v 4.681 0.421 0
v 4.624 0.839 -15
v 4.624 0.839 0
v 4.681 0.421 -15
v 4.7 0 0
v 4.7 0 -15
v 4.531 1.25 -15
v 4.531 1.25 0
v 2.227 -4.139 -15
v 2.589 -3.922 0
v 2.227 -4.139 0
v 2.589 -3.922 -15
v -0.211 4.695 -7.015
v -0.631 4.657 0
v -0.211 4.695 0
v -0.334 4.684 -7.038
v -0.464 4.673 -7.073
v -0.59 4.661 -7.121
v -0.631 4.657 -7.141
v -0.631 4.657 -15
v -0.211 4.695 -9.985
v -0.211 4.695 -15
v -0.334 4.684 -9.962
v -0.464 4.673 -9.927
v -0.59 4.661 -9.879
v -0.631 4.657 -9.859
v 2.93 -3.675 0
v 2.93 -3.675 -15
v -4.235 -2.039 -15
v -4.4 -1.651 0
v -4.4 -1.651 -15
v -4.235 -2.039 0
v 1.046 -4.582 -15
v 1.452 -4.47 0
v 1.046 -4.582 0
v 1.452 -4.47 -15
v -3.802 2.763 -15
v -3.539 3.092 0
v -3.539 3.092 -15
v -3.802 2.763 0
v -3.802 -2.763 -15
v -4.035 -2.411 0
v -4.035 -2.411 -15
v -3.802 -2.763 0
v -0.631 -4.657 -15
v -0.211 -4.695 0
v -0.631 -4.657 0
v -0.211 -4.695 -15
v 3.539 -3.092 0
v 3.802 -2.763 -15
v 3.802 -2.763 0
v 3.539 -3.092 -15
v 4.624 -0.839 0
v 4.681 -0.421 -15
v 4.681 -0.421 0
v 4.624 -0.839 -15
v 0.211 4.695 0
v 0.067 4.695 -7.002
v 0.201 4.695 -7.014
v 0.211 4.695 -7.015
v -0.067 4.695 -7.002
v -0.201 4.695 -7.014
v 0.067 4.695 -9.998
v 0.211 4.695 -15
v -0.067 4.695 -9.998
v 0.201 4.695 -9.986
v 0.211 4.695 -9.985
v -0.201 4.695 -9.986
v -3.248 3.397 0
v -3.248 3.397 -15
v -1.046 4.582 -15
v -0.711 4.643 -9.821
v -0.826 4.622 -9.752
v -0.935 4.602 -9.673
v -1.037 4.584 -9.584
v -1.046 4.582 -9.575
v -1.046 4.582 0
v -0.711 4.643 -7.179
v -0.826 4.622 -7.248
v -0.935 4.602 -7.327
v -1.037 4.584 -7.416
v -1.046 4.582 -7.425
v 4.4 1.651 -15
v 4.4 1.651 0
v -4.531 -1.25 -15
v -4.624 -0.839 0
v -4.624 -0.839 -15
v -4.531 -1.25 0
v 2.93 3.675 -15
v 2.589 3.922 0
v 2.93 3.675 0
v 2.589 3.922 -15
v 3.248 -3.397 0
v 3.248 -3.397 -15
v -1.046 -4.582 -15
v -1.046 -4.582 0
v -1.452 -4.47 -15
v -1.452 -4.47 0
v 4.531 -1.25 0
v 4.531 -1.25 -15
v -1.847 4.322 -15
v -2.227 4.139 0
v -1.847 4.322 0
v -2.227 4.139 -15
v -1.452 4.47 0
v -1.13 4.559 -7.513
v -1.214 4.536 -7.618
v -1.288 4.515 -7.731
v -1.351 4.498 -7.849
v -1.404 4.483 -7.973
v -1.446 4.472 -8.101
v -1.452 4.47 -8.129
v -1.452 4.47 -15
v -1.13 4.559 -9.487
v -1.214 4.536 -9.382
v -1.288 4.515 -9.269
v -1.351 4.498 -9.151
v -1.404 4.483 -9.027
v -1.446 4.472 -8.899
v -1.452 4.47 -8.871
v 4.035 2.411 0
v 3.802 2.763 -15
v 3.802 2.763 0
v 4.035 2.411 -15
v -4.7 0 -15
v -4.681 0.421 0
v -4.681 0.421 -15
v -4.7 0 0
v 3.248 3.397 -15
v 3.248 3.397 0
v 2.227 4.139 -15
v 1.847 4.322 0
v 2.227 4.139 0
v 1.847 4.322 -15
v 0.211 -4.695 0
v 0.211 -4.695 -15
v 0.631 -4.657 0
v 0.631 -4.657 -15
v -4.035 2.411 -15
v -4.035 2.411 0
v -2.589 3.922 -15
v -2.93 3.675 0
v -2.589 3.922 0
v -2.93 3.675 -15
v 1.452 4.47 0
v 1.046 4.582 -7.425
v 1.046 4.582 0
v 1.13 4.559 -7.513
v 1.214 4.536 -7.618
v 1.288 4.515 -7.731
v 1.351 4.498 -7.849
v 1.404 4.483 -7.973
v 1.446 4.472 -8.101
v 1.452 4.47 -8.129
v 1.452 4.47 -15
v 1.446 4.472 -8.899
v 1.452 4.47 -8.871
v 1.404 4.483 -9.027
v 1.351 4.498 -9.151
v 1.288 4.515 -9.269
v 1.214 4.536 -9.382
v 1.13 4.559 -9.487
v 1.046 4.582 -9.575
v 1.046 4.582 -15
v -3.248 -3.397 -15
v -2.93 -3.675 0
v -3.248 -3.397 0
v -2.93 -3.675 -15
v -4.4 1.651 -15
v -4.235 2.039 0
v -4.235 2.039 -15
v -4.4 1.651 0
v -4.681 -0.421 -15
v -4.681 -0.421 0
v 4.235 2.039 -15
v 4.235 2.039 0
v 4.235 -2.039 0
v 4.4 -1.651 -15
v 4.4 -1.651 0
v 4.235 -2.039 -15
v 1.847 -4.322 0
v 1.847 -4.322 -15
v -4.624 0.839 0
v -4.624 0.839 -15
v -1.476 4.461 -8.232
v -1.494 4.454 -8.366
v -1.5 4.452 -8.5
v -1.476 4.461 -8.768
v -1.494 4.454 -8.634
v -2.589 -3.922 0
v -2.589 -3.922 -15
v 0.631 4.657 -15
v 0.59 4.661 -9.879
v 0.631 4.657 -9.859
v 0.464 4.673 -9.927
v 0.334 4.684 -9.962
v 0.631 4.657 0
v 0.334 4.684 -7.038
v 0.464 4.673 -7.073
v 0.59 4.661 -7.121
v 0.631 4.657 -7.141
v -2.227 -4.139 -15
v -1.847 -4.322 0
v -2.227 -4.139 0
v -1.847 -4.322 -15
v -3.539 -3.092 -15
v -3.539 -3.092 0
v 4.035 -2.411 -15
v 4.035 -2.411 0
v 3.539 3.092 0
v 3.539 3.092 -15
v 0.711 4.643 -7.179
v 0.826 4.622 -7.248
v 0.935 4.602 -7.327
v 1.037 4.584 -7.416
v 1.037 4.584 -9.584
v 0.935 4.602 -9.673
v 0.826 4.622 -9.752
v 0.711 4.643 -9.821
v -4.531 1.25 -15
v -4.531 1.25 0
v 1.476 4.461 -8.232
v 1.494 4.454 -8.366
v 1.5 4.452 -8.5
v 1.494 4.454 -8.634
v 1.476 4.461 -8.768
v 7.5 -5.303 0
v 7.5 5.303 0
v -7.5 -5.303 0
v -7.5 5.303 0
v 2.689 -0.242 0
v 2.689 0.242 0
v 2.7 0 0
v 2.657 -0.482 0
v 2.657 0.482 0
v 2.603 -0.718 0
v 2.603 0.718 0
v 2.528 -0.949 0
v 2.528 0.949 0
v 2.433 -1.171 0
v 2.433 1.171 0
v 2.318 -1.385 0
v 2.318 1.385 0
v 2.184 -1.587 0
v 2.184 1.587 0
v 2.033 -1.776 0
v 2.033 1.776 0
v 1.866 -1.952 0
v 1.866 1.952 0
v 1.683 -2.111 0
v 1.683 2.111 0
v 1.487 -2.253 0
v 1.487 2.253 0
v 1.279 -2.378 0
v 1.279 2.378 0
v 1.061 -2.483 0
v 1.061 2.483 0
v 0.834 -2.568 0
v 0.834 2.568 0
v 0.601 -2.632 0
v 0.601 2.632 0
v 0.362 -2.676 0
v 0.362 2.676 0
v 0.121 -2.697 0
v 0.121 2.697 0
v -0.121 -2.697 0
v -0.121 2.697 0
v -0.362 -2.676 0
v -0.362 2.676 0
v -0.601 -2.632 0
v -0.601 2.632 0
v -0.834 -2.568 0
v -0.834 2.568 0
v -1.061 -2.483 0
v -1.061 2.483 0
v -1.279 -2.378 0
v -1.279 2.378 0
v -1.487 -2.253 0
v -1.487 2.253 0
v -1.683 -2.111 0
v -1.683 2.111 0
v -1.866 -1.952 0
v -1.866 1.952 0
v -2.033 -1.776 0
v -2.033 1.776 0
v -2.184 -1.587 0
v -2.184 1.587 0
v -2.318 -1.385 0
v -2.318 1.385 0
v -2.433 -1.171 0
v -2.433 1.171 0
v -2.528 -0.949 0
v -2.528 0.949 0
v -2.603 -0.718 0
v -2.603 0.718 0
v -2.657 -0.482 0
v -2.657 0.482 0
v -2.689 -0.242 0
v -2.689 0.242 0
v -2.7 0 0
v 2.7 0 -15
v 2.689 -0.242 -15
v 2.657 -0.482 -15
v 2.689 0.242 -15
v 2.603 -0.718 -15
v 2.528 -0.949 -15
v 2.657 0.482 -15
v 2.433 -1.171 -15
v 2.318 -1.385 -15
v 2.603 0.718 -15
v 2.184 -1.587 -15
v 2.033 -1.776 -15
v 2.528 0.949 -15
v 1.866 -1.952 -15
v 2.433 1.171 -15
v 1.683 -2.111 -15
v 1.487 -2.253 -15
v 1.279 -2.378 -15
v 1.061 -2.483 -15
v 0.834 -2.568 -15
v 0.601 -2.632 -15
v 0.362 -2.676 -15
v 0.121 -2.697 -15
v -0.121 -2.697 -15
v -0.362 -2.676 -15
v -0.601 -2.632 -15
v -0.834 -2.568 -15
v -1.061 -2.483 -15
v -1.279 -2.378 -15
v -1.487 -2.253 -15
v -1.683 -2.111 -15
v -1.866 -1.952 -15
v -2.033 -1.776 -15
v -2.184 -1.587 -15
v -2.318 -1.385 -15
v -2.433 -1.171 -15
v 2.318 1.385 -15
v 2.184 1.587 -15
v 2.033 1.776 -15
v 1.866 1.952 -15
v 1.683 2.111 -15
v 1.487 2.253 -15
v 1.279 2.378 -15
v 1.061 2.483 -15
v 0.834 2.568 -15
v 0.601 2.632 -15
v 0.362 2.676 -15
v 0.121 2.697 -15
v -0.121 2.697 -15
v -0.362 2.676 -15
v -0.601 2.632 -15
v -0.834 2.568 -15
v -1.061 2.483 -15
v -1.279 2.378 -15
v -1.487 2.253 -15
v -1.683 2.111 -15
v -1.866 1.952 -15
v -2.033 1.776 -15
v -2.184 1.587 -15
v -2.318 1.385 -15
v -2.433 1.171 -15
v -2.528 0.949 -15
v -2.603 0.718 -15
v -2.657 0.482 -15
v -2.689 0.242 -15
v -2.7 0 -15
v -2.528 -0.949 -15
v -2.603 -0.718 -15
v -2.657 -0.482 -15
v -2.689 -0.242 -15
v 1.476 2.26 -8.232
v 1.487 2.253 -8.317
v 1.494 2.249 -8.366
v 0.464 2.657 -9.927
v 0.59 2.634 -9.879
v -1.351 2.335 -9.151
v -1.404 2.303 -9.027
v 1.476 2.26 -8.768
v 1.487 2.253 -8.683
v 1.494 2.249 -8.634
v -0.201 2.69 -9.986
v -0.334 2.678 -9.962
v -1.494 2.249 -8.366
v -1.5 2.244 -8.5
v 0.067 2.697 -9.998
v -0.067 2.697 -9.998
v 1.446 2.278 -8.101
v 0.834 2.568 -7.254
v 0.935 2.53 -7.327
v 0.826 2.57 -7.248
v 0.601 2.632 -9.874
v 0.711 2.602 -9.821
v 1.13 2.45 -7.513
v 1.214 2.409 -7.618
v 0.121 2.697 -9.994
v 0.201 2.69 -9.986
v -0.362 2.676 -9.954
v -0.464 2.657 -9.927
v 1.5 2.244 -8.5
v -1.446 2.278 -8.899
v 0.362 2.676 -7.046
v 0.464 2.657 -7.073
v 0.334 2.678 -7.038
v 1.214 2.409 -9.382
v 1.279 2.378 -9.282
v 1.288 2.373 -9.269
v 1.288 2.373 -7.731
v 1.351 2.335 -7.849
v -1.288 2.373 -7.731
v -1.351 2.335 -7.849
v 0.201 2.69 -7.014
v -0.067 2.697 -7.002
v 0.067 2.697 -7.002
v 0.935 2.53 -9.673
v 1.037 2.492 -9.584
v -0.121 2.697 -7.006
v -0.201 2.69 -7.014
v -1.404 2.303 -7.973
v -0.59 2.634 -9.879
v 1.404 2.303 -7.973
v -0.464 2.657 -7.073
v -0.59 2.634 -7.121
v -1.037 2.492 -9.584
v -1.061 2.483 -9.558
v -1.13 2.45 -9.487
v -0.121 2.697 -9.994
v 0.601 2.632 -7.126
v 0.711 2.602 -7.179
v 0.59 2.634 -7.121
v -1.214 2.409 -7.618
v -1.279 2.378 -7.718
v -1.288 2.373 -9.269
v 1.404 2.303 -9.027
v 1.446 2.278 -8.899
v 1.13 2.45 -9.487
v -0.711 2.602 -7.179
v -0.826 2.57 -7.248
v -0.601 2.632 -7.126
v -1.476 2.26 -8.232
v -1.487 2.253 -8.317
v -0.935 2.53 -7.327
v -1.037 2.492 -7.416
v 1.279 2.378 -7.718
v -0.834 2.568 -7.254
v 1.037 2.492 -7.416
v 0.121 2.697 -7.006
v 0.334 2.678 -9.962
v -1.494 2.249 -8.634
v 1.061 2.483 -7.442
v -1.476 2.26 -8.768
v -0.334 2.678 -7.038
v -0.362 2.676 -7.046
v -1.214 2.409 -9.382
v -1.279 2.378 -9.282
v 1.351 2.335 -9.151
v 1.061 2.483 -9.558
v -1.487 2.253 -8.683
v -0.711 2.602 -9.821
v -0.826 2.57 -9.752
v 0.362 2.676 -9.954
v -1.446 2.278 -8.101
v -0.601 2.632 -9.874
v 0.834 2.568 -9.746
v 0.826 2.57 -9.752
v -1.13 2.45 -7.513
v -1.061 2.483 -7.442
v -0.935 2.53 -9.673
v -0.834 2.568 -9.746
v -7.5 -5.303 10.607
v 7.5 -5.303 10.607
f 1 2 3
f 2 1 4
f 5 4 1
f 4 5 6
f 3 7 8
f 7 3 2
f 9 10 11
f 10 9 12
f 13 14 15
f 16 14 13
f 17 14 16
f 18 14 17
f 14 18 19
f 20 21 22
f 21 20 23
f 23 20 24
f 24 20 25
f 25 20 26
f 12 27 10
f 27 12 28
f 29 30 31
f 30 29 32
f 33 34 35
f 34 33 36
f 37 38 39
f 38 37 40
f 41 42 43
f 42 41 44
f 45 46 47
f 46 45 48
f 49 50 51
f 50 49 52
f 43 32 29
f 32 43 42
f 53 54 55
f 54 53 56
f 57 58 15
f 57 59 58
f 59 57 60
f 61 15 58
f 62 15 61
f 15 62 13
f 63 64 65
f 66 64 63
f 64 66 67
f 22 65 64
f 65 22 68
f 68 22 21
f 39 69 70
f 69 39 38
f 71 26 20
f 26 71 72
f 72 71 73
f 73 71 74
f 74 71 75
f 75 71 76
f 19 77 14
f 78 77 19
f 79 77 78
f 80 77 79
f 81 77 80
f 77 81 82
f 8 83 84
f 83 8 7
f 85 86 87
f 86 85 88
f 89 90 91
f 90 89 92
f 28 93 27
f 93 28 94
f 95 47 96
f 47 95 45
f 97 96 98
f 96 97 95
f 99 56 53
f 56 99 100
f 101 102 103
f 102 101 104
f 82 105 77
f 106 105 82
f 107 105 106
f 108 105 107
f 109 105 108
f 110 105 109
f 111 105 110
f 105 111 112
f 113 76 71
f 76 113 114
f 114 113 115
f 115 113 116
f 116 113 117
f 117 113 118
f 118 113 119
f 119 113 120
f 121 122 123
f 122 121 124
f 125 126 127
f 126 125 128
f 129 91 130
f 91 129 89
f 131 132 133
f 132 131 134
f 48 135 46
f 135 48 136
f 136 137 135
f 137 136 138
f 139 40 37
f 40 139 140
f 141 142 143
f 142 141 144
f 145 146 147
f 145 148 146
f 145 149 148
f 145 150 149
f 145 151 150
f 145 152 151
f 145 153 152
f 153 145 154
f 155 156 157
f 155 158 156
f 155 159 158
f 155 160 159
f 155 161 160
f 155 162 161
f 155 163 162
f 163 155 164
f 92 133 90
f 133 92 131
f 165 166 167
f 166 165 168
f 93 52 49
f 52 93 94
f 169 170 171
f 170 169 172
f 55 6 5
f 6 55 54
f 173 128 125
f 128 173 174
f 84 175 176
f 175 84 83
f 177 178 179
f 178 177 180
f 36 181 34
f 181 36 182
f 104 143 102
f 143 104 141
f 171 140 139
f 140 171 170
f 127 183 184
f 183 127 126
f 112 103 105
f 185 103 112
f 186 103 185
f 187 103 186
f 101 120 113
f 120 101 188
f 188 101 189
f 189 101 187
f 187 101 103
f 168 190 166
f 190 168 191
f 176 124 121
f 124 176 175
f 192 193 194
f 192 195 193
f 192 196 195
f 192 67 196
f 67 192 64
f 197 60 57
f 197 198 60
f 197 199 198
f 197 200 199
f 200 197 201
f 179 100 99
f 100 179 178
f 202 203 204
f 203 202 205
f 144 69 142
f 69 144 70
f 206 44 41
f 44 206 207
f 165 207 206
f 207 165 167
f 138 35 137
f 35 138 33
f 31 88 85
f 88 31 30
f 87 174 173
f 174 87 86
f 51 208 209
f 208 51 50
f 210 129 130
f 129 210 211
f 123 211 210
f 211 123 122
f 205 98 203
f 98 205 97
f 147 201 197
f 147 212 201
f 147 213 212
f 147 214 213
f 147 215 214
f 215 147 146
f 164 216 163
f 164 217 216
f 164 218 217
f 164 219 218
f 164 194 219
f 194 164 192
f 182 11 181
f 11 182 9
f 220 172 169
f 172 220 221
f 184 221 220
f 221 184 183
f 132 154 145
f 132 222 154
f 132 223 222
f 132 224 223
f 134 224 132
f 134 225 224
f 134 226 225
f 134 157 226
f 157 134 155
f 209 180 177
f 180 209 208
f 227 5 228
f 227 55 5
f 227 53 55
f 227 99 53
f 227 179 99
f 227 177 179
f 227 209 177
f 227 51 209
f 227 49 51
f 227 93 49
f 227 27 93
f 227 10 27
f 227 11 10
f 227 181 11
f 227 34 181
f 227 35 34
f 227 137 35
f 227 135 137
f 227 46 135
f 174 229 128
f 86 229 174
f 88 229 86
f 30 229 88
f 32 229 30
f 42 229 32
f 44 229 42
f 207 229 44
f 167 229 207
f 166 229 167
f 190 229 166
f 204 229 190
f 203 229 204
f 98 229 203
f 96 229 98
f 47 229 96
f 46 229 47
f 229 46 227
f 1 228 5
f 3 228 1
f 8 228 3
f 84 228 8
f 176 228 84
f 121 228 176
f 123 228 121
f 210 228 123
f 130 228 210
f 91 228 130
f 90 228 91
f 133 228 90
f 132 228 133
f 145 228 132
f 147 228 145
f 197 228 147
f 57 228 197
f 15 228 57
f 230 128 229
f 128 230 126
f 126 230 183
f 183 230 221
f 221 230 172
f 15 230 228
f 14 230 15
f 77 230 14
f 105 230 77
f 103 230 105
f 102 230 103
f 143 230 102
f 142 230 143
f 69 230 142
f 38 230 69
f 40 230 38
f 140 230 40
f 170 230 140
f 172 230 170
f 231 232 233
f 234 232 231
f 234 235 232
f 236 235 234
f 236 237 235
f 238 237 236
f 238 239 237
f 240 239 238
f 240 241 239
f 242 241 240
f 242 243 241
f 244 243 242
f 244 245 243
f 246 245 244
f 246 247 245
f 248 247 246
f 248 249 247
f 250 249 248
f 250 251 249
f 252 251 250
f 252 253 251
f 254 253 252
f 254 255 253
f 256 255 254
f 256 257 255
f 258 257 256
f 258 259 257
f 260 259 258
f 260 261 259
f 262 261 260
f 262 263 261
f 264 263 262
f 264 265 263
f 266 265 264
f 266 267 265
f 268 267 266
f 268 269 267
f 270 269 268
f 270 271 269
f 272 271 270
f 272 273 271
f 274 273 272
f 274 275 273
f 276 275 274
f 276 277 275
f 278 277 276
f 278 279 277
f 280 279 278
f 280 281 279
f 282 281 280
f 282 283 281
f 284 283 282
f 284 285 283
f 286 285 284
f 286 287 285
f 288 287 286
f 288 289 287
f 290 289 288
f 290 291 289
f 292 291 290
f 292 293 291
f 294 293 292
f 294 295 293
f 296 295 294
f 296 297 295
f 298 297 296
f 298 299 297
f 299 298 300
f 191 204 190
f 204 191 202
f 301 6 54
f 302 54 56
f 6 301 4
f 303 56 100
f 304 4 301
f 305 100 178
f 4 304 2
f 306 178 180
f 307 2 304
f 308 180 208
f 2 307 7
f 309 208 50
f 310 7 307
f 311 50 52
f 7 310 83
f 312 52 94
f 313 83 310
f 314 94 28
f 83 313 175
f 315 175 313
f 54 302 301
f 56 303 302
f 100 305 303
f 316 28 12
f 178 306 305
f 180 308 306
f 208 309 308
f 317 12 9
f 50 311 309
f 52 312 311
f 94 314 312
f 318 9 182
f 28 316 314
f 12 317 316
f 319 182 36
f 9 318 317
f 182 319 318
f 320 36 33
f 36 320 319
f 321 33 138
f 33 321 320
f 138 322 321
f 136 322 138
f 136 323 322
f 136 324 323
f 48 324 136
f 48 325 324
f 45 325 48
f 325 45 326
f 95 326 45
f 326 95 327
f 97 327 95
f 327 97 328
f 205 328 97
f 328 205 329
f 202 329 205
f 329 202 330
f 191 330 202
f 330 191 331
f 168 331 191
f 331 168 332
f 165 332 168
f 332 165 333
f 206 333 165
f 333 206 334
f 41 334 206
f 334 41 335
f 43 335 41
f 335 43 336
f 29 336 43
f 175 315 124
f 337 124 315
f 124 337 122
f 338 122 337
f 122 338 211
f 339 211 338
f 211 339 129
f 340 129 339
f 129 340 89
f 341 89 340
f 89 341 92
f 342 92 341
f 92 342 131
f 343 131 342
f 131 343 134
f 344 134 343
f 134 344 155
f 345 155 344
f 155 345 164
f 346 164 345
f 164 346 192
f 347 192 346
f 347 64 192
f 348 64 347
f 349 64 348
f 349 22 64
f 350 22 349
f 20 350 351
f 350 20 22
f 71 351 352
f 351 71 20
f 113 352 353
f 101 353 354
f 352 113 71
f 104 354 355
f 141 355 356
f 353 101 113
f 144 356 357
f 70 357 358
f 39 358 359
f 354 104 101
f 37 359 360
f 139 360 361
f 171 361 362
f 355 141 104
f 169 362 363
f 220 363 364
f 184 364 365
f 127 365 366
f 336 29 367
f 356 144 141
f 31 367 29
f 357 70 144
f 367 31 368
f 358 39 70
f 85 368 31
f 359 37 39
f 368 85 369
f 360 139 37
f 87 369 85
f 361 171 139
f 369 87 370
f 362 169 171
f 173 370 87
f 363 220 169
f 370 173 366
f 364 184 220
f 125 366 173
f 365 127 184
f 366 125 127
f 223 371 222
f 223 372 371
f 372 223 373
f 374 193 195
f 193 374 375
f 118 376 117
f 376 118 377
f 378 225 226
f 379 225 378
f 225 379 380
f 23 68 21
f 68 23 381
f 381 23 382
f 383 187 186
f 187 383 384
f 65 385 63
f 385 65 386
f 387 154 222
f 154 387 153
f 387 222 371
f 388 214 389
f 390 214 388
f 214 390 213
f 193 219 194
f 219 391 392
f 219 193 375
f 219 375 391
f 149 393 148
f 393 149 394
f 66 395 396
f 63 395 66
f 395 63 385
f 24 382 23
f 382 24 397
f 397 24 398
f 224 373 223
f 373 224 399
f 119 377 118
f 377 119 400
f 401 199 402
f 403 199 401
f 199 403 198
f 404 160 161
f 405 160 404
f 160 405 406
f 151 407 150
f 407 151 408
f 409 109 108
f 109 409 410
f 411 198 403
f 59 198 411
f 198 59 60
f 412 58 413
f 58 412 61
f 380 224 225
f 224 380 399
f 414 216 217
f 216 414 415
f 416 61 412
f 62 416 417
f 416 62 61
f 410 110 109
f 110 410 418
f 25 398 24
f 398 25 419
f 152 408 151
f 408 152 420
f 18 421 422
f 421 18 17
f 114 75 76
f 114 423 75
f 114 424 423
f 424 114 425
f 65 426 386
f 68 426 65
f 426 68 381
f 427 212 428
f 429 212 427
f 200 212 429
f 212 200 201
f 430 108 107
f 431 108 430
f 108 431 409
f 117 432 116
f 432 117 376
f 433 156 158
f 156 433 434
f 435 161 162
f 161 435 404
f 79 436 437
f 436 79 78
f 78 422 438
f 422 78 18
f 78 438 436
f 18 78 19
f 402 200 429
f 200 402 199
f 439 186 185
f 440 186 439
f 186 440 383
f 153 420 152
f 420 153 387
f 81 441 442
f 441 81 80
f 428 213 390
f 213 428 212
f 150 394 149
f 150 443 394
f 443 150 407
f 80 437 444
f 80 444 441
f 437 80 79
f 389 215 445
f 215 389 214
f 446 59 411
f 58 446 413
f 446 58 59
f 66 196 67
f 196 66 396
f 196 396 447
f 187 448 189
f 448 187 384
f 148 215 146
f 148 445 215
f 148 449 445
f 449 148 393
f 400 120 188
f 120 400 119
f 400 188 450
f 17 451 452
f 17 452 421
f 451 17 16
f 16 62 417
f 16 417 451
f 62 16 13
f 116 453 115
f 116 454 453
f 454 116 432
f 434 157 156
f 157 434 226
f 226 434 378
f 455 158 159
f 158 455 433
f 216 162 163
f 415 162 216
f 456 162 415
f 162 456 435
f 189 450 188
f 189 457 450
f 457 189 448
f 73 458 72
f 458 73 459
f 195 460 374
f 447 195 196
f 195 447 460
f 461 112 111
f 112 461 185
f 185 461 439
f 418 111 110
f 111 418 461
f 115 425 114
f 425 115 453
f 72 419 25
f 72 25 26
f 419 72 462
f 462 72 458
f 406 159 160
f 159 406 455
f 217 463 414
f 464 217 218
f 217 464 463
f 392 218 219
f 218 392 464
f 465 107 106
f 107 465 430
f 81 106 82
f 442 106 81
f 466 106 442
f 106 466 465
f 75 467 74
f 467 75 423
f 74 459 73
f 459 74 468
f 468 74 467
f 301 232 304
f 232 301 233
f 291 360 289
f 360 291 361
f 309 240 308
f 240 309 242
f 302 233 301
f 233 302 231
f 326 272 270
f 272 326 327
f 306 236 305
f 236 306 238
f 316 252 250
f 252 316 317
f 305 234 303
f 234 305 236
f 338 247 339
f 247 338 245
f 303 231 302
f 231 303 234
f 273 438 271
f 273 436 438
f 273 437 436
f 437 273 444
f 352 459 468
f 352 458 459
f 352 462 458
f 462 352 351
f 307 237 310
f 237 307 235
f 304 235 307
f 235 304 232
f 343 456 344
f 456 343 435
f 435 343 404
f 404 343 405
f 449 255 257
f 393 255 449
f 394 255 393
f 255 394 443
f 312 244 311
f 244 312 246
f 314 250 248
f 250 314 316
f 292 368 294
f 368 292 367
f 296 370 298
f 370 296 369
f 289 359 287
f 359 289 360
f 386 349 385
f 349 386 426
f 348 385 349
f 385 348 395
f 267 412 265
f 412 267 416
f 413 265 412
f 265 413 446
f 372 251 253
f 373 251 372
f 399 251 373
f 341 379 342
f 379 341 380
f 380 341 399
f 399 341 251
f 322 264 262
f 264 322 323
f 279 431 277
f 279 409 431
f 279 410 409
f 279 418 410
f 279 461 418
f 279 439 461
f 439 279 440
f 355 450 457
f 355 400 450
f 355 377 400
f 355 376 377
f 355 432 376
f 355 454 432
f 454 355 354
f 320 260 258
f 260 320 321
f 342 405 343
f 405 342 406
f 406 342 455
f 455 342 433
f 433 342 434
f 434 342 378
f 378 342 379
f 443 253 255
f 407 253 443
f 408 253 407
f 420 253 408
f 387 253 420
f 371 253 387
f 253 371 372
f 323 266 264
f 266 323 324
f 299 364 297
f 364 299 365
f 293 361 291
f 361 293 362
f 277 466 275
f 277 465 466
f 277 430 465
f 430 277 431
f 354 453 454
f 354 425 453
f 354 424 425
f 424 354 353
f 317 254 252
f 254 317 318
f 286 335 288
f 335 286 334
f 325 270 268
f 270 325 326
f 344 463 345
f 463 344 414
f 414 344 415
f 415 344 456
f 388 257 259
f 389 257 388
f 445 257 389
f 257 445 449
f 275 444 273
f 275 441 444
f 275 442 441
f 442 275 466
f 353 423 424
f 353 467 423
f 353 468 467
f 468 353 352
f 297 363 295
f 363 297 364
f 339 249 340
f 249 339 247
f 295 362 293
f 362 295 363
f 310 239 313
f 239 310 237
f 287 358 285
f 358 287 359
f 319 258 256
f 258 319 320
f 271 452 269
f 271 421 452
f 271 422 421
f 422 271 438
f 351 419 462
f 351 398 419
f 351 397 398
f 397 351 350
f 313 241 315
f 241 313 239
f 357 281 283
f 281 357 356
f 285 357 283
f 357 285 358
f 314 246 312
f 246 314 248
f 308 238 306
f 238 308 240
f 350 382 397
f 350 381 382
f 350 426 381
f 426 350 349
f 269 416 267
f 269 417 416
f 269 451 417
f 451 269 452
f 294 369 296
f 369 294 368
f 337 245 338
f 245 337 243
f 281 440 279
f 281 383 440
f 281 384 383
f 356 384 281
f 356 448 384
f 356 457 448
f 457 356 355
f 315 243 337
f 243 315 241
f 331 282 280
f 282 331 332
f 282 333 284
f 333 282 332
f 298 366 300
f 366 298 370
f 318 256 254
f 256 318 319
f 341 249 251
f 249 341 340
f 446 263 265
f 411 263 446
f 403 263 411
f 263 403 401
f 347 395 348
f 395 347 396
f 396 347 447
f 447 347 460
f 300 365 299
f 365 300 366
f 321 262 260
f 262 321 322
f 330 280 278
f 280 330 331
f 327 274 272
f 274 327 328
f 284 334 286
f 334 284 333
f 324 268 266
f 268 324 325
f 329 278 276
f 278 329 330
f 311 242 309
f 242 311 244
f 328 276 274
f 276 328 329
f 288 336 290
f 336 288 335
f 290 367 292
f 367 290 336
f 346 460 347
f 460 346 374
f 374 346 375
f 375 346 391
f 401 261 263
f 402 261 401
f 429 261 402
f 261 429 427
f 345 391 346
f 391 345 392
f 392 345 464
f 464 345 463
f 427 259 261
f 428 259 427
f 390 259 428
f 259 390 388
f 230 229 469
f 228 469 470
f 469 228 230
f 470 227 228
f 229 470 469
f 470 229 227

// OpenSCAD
$fn=70;

diameter  = 5;
height=15;
module shaft(tolerance)
{
    
    translate([0,0,-height/2])
    cylinder(h=height,d=diameter+tolerance,center=true);
}


module shaftSupport(tolerance)
{
    diameter_support=4;    
    translate([0,0,-height/2])
    cylinder(h=height,d=diameter+diameter_support+tolerance,center=true);
}

module mirrorSupport(l=15)
{
points = [
    [0, 0, 0], // Point 1
    [0, l, 0], // Point 2
    [l, l, 0], // Point 3
    [l, 0, 0], // Point 4
    [0, l/2, sqrt(l*l/2)/sqrt(2) ], // Point 5
    [l, l/2, sqrt(l*l/2)/sqrt(2) ]  // Point 6
];
faces = [
    [3, 2, 1, 0],  // Base, normal upwards
    [0, 1, 4],     // Side triangle, normal outward
    [1, 2, 5, 4],  //  Side face, normal outward
    [2, 3, 5],     // Side triangle, normal outward
    [4, 5, 3, 0],  //  Side face, normal outward
];


translate([0,0,l/2/sqrt(2)])
rotate([135,0,0])
translate([-l/2,-l/2,0])
polyhedron(points, faces);
}


union()
{
    tolerance=0.4;
    difference()
    {
        diameter_screw = 3;
        distance_to_border=5;
        shaftSupport(tolerance);
        translate([0,5,distance_to_border-height+diameter_screw/2])
        rotate([90,0,0])
        color("green")
        cylinder(h=7,d=diameter_screw,center=true);
        shaft(tolerance);
    }
    
    //translate([0,0,-1])
    mirrorSupport(15);
}
/*
difference()
{
    mirrorSupport(15);
    diameter_screw = 3;
    distance_to_border=5;
    //translate([0,5,distance_to_border-height+diameter_screw/2])
    rotate([90,0,0])
    color("green")
    cylinder(h=7,d=diameter_screw,center=true);
}*/
